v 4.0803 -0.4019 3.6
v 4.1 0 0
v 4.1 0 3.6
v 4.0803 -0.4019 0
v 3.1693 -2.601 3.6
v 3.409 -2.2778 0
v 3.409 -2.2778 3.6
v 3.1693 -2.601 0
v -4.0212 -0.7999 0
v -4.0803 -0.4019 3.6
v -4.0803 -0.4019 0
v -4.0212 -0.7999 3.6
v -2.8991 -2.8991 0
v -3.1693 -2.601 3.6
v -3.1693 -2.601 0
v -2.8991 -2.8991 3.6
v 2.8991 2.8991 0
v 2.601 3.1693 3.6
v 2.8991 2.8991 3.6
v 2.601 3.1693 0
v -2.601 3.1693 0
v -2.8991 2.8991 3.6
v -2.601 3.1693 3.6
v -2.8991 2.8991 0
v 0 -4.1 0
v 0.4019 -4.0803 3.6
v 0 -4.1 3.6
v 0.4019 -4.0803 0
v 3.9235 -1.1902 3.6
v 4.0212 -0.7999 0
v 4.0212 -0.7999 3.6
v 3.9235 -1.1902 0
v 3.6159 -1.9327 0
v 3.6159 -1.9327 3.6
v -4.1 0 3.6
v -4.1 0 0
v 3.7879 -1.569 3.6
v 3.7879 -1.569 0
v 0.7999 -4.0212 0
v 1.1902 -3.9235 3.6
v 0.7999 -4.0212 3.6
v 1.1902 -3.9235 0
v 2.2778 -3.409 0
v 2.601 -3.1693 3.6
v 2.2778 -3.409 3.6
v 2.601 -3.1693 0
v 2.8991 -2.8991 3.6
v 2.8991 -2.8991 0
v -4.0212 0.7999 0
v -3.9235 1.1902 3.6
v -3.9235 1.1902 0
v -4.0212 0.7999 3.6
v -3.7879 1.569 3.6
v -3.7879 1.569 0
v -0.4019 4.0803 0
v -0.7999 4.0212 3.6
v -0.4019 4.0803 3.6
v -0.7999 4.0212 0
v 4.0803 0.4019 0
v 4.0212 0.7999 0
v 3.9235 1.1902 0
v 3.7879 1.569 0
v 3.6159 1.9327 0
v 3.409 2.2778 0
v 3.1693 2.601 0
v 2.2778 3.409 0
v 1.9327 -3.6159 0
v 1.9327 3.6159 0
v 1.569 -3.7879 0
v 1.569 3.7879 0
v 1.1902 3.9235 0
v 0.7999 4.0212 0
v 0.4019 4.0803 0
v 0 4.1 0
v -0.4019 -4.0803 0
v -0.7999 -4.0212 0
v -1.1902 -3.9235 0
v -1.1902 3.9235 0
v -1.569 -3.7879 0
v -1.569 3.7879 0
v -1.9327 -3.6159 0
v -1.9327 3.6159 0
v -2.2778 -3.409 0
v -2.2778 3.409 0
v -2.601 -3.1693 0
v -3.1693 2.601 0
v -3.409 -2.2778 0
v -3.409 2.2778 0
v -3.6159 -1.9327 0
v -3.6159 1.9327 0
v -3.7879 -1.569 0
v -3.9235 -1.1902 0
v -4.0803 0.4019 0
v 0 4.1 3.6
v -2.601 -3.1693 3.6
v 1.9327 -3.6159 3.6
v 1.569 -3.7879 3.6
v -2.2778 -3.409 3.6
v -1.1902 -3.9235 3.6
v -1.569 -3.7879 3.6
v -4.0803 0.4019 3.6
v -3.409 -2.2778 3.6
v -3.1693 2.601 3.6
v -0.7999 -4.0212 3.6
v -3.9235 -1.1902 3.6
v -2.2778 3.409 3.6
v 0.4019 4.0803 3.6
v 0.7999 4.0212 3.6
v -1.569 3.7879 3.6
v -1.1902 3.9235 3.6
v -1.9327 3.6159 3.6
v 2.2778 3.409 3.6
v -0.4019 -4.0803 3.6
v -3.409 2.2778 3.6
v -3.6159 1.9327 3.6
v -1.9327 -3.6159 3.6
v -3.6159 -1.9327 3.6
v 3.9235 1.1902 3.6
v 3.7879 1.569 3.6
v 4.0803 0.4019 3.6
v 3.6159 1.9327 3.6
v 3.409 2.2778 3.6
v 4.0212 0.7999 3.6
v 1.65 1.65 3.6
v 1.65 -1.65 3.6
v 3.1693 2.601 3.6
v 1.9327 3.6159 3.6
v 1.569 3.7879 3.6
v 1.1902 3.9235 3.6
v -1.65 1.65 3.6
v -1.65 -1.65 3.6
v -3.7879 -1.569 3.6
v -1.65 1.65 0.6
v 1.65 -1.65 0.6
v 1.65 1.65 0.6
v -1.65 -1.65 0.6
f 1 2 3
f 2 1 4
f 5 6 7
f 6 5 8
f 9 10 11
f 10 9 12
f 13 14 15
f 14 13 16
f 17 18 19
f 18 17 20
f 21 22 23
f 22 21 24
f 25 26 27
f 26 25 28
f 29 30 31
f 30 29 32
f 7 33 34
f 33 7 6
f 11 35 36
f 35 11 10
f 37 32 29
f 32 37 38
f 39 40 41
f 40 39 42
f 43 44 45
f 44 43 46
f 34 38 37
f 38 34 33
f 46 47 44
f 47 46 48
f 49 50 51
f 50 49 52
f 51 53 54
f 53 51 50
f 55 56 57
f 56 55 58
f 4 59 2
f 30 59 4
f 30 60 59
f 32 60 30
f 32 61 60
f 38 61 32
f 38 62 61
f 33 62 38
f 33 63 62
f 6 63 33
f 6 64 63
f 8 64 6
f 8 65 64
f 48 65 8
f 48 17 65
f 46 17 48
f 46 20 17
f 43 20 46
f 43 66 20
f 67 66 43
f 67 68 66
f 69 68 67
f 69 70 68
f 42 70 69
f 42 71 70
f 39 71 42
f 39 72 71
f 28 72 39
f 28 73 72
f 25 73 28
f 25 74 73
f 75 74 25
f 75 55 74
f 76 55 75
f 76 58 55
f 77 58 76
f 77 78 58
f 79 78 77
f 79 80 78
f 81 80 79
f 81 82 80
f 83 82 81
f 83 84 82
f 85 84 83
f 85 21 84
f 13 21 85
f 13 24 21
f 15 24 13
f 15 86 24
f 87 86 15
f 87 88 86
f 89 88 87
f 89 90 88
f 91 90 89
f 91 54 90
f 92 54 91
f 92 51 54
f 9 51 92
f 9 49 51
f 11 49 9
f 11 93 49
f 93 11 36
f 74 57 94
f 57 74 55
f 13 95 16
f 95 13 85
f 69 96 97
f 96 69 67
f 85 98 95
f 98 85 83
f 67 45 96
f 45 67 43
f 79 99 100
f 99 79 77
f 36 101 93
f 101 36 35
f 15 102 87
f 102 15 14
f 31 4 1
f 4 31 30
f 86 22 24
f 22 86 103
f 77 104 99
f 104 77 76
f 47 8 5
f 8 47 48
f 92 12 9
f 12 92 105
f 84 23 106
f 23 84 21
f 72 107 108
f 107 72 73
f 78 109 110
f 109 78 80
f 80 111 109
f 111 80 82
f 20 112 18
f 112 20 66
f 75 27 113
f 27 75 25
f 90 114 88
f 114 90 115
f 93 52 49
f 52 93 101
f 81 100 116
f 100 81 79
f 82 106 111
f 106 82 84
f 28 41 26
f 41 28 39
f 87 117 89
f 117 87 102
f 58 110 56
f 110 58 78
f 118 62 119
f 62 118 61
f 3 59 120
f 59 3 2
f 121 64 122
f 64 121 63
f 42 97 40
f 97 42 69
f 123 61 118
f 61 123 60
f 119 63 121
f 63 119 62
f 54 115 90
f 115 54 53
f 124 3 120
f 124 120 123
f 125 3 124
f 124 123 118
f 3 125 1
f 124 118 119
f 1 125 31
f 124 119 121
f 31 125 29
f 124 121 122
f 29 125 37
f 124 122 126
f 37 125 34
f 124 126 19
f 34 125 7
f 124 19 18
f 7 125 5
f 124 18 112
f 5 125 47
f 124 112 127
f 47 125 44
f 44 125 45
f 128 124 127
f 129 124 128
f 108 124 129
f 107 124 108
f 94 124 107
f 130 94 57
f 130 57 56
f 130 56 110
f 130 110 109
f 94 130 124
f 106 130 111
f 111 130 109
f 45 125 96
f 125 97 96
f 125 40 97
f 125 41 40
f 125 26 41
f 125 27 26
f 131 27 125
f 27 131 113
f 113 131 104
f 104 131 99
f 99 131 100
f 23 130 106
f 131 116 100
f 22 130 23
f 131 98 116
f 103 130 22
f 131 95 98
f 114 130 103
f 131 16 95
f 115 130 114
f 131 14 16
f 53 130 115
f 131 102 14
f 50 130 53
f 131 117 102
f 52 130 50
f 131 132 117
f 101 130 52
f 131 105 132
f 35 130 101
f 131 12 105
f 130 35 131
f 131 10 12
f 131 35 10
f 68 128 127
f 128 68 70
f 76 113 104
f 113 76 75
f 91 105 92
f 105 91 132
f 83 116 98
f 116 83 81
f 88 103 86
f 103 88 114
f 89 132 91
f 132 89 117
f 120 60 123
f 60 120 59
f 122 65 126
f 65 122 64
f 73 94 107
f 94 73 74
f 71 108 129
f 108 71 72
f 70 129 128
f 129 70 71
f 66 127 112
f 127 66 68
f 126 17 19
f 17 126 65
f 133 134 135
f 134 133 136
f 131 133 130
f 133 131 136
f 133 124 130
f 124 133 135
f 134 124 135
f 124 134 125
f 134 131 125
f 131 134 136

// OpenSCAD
$fn = 64;

circle = 4.10;
height = 3.60;
hole_h = 3.00;
hole_w = 3.30;

difference() {
    linear_extrude(height)
        circle(r = circle);
    translate([0, 0, height - hole_h])
    linear_extrude(hole_h)
        square([hole_w, hole_w], center = true);
}
